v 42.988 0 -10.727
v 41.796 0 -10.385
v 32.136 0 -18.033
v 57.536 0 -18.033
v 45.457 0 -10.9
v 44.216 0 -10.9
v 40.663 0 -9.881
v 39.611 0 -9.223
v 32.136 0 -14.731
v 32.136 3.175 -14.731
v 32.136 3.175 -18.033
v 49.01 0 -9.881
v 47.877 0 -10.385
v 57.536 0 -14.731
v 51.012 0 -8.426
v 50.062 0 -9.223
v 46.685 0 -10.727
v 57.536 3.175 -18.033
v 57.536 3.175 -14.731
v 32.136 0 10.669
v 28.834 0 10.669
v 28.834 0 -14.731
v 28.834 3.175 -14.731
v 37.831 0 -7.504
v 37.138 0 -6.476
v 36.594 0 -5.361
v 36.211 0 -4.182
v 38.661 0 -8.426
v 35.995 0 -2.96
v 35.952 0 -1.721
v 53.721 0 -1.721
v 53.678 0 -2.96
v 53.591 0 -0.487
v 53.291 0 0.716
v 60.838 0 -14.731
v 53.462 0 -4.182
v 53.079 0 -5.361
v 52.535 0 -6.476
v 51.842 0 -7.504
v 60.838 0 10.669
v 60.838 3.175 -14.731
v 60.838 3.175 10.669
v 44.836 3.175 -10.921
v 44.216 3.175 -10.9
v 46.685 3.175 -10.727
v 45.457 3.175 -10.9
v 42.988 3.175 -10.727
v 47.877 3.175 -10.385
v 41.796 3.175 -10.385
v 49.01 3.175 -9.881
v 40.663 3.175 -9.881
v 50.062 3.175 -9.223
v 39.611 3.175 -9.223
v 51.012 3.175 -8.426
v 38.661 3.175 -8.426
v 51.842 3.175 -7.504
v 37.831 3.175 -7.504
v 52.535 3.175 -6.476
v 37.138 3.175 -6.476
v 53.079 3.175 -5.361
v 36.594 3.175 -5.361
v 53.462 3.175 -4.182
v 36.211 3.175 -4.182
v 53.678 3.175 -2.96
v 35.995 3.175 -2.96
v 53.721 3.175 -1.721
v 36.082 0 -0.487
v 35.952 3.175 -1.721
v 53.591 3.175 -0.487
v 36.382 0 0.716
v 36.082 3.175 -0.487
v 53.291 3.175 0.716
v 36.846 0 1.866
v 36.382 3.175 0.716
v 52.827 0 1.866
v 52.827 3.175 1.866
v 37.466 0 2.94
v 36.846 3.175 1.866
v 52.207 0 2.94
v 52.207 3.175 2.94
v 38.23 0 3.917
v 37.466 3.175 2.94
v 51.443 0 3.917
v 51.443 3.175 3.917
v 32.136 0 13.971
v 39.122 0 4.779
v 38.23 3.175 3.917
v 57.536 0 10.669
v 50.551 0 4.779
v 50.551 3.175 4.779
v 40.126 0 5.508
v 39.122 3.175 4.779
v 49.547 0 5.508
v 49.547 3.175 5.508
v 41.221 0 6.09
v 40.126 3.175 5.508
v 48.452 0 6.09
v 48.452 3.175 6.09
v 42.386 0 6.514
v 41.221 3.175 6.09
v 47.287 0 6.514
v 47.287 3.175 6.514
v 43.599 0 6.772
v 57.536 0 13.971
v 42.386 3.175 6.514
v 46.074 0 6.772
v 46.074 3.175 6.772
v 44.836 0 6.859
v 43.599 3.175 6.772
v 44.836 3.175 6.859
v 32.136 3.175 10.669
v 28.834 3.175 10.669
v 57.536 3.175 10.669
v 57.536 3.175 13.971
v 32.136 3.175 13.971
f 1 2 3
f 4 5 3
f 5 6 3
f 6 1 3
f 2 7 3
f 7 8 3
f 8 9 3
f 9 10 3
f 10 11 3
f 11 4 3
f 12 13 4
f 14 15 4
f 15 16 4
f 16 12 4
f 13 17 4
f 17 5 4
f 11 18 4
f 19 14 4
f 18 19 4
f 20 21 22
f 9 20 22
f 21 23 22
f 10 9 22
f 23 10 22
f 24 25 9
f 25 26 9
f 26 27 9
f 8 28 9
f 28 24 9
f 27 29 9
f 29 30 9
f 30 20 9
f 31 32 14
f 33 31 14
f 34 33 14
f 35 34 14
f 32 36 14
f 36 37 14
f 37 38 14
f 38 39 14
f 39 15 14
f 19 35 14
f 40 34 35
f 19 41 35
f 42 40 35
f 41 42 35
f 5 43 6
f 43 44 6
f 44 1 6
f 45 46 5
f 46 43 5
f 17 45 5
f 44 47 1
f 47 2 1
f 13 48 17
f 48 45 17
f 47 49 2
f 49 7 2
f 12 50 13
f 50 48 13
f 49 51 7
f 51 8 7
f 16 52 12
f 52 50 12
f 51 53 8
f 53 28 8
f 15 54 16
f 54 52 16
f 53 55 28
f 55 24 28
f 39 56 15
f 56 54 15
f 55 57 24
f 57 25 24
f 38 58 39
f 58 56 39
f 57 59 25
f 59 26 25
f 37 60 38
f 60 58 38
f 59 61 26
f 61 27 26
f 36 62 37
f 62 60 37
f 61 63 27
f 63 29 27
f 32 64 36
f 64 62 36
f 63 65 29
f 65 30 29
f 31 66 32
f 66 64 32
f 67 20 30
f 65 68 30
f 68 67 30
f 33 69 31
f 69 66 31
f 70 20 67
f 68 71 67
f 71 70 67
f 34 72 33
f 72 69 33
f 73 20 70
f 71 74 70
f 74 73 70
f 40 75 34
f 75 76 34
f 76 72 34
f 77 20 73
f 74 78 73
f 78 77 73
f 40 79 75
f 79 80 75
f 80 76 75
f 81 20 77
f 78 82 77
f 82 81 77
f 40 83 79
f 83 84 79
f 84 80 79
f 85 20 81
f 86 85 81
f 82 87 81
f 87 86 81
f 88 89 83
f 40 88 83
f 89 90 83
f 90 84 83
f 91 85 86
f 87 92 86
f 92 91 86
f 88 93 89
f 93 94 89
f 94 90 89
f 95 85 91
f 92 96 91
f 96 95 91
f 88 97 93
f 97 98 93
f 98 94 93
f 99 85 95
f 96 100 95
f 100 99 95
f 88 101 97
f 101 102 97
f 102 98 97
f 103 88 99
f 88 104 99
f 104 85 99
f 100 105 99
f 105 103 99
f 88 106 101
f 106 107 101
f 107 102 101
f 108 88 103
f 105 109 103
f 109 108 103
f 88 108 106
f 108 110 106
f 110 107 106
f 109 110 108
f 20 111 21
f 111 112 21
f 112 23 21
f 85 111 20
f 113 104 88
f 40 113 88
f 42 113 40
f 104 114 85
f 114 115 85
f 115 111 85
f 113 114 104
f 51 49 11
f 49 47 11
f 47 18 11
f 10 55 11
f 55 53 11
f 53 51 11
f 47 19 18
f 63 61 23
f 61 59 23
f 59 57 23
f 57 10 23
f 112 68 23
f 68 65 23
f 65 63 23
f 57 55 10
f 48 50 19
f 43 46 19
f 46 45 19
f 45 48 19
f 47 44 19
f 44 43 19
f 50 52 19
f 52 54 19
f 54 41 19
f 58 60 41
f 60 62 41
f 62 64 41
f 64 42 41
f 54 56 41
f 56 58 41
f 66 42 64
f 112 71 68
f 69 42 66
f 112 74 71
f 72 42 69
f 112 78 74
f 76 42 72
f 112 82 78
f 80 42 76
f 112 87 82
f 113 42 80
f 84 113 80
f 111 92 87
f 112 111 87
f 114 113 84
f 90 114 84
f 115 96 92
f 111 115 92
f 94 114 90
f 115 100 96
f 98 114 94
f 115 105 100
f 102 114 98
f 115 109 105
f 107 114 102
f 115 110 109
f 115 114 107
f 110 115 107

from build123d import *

# Parameters (mm, degrees)
SKETCH2_W                    = 304.8
SKETCH2_H                    = 304.8
BOSS_EXTRUDE1_DEPTH          = 3.175
CUT_EXTRUDE1_DEPTH           = 348.408852067
CUT_EXTRUDE1_DEPTH_BACK      = 348.408852067
SKETCH3_W                    = 304.8
SKETCH3_H                    = 304.8
SKETCH3_R                    = 12.7
SKETCH3_R_2                  = 8.89
BODY_DELETE_KEEP_1_OUTLINE_R = 12.7
BODY_DELETE_KEEP_1_DEPTH     = 3.175


# Read off the part's stored shape, not the designer's step: Body-Delete/Keep 1
with BuildPart() as part:
    # Sketch2 → Boss-Extrude1 (new body)
    with BuildSketch(Plane(origin=(0, 0, 0), x_dir=(1, 0, 0), z_dir=(0, 1, 0))):
        with Locations((-56.763509666, -124.968808797)):
            Rectangle(SKETCH2_W, SKETCH2_H)
    extrude(amount=BOSS_EXTRUDE1_DEPTH)

    # Sketch3 → Cut-Extrude1 (cut, two sides: drawn at the far end of the back side and taken through both)
    # profile 1 of 3: a face of its own
    with BuildSketch(Plane(origin=(0, 3.175, 0), x_dir=(1, 0, 0), z_dir=(0, 1, 0)).offset(-CUT_EXTRUDE1_DEPTH_BACK)):
        with Locations((-56.763509666, -124.968808797)):
            Rectangle(SKETCH3_W, SKETCH3_H)
        Polygon((-188.253637726, -268.695366412), (-192.063637726, -268.695366412), (-192.063637726, -265.393366412), (-198.413637726, -265.393366412), (-188.253637726, -205.195366412), align=None, mode=Mode.SUBTRACT)
        Polygon((-185.713637726, -265.393366412), (-175.553637726, -205.195366412), (-175.553637726, -268.695366412), (-179.363637726, -268.695366412), (-179.363637726, -265.393366412), align=None, mode=Mode.SUBTRACT)
        Polygon((-162.853637726, -268.695366412), (-166.663637726, -268.695366412), (-166.663637726, -265.393366412), (-173.013637726, -265.393366412), (-162.853637726, -205.195366412), align=None, mode=Mode.SUBTRACT)
        Polygon((-150.153637726, -268.695366412), (-153.963637726, -268.695366412), (-153.963637726, -265.393366412), (-160.313637726, -265.393366412), (-150.153637726, -205.195366412), align=None, mode=Mode.SUBTRACT)
        Polygon((-147.613637726, -265.393366412), (-137.453637726, -205.195366412), (-137.453637726, -268.695366412), (-141.263637726, -268.695366412), (-141.263637726, -265.393366412), align=None, mode=Mode.SUBTRACT)
        Polygon((-128.563637726, -265.393366412), (-134.913637726, -265.393366412), (-124.753637726, -205.195366412), (-124.753637726, -268.695366412), (-128.563637726, -268.695366412), align=None, mode=Mode.SUBTRACT)
        Polygon((-122.213637726, -265.393366412), (-112.053637726, -205.195366412), (-112.053637726, -268.695366412), (-115.863637726, -268.695366412), (-115.863637726, -265.393366412), align=None, mode=Mode.SUBTRACT)
        Polygon((-99.353637726, -268.695366412), (-103.163637726, -268.695366412), (-103.163637726, -265.393366412), (-109.513637726, -265.393366412), (-99.353637726, -205.195366412), align=None, mode=Mode.SUBTRACT)
        Polygon((-90.463637726, -268.695366412), (-90.463637726, -265.393366412), (-96.813637726, -265.393366412), (-86.653637726, -205.195366412), (-86.653637726, -268.695366412), align=None, mode=Mode.SUBTRACT)
        Polygon((-84.113637726, -265.393366412), (-73.953637726, -205.195366412), (-73.953637726, -268.695366412), (-77.763637726, -268.695366412), (-77.763637726, -265.393366412), align=None, mode=Mode.SUBTRACT)
        Polygon((-71.413637726, -265.393366412), (-61.253637726, -205.195366412), (-61.253637726, -268.695366412), (-65.063637726, -268.695366412), (-65.063637726, -265.393366412), align=None, mode=Mode.SUBTRACT)
        with BuildLine():
            ThreePointArc((-132.963509666, -135.600090559), (-133.446874634, -138.030130355), (-134.823381605, -140.09021862))
            Line((-134.823381605, -140.09021862), (-188.253637726, -193.520474741))
            ThreePointArc((-188.253637726, -193.520474741), (-190.313725991, -194.896981712), (-192.743765787, -195.38034668))
            Line((-192.743765787, -195.38034668), (-196.463509666, -195.38034668))
            Line((-196.463509666, -195.38034668), (-196.463509666, -131.88034668))
            Line((-196.463509666, -131.88034668), (-132.963509666, -131.88034668))
            Line((-132.963509666, -131.88034668), (-132.963509666, -135.600090559))
        make_face(mode=Mode.SUBTRACT)
        with BuildLine():
            Line((-126.613509666, -195.38034668), (-126.613509666, -131.88034668))
            Line((-126.613509666, -131.88034668), (-63.113509666, -131.88034668))
            Line((-63.113509666, -131.88034668), (-63.113509666, -135.600090559))
            ThreePointArc((-63.113509666, -135.600090559), (-63.596874634, -138.030130355), (-64.973381605, -140.09021862))
            Line((-64.973381605, -140.09021862), (-118.403637726, -193.520474741))
            ThreePointArc((-118.403637726, -193.520474741), (-120.463725991, -194.896981712), (-122.893765787, -195.38034668))
            Line((-122.893765787, -195.38034668), (-126.613509666, -195.38034668))
        make_face(mode=Mode.SUBTRACT)
        Polygon((-52.363637726, -268.695366412), (-52.363637726, -265.393366412), (-58.713637726, -265.393366412), (-48.553637726, -205.195366412), (-48.553637726, -268.695366412), align=None, mode=Mode.SUBTRACT)
        Polygon((-35.853637726, -205.195366412), (-35.853637726, -268.695366412), (-39.663637726, -268.695366412), (-39.663637726, -265.393366412), (-46.013637726, -265.393366412), align=None, mode=Mode.SUBTRACT)
        Polygon((-23.153637726, -205.195366412), (-23.153637726, -268.695366412), (-26.963637726, -268.695366412), (-26.963637726, -265.393366412), (-33.313637726, -265.393366412), align=None, mode=Mode.SUBTRACT)
        Polygon((-20.613637726, -265.393366412), (-10.453637726, -205.195366412), (-10.453637726, -268.695366412), (-14.263637726, -268.695366412), (-14.263637726, -265.393366412), align=None, mode=Mode.SUBTRACT)
        Polygon((-1.563637726, -268.695366412), (-1.563637726, -265.393366412), (-7.913637726, -265.393366412), (2.246362274, -205.195366412), (2.246362274, -268.695366412), align=None, mode=Mode.SUBTRACT)
        with BuildLine():
            Line((-53.043765787, -195.38034668), (-56.763509666, -195.38034668))
            Line((-56.763509666, -195.38034668), (-56.763509666, -131.88034668))
            Line((-56.763509666, -131.88034668), (6.736490334, -131.88034668))
            Line((6.736490334, -131.88034668), (6.736490334, -135.600090559))
            ThreePointArc((6.736490334, -135.600090559), (6.253125366, -138.030130355), (4.876618395, -140.09021862))
            Line((4.876618395, -140.09021862), (-48.553637726, -193.520474741))
            ThreePointArc((-48.553637726, -193.520474741), (-50.613725991, -194.896981712), (-53.043765787, -195.38034668))
        make_face(mode=Mode.SUBTRACT)
        with BuildLine():
            Line((13.086490334, -131.88034668), (76.586490334, -131.88034668))
            Line((76.586490334, -131.88034668), (76.586490334, -135.600090559))
            ThreePointArc((76.586490334, -135.600090559), (76.103125366, -138.030130355), (74.726618395, -140.09021862))
            Line((74.726618395, -140.09021862), (21.296362274, -193.520474741))
            ThreePointArc((21.296362274, -193.520474741), (19.236274009, -194.896981712), (16.806234213, -195.38034668))
            Line((16.806234213, -195.38034668), (13.086490334, -195.38034668))
            Line((13.086490334, -195.38034668), (13.086490334, -131.88034668))
        make_face(mode=Mode.SUBTRACT)
        with BuildLine():
            Line((-196.463509666, -125.53034668), (-196.463509666, -62.03034668))
            Line((-196.463509666, -62.03034668), (-132.963509666, -62.03034668))
            Line((-132.963509666, -62.03034668), (-132.963509666, -65.750090559))
            ThreePointArc((-132.963509666, -65.750090559), (-133.10773728, -67.095783354), (-133.533868437, -68.38034668))
            ThreePointArc((-133.533868437, -68.38034668), (-134.095097913, -69.368194866), (-134.823381605, -70.24021862))
            Line((-134.823381605, -70.24021862), (-188.253637726, -123.670474741))
            ThreePointArc((-188.253637726, -123.670474741), (-189.12566148, -124.398758433), (-190.113509666, -124.959987909))
            ThreePointArc((-190.113509666, -124.959987909), (-191.398072992, -125.386119066), (-192.743765787, -125.53034668))
            Line((-192.743765787, -125.53034668), (-196.463509666, -125.53034668))
        make_face(mode=Mode.SUBTRACT)
        with BuildLine():
            Line((-122.893765787, -125.53034668), (-126.613509666, -125.53034668))
            Line((-126.613509666, -125.53034668), (-126.613509666, -62.03034668))
            Line((-126.613509666, -62.03034668), (-63.113509666, -62.03034668))
            Line((-63.113509666, -62.03034668), (-63.113509666, -65.750090559))
            ThreePointArc((-63.113509666, -65.750090559), (-63.596874634, -68.180130355), (-64.973381605, -70.24021862))
            Line((-64.973381605, -70.24021862), (-118.403637726, -123.670474741))
            ThreePointArc((-118.403637726, -123.670474741), (-120.463725991, -125.046981712), (-122.893765787, -125.53034668))
        make_face(mode=Mode.SUBTRACT)
        Polygon((-196.463509666, -48.768808797), (-196.463509666, 14.731191203), (-192.653509666, 14.731191203), (-192.653509666, 11.429191203), (-186.303509666, 11.429191203), align=None, mode=Mode.SUBTRACT)
        Polygon((-183.763509666, 14.731191203), (-179.953509666, 14.731191203), (-179.953509666, 11.429191203), (-173.603509666, 11.429191203), (-183.763509666, -48.768808797), align=None, mode=Mode.SUBTRACT)
        Polygon((-171.063509666, 14.731191203), (-167.253509666, 14.731191203), (-167.253509666, 11.429191203), (-160.903509666, 11.429191203), (-171.063509666, -48.768808797), align=None, mode=Mode.SUBTRACT)
        Polygon((-158.363509666, 14.731191203), (-154.553509666, 14.731191203), (-154.553509666, 11.429191203), (-148.203509666, 11.429191203), (-158.363509666, -48.768808797), align=None, mode=Mode.SUBTRACT)
        Polygon((-145.663509666, 14.731191203), (-141.853509666, 14.731191203), (-141.853509666, 11.429191203), (-135.503509666, 11.429191203), (-145.663509666, -48.768808797), align=None, mode=Mode.SUBTRACT)
        Polygon((-132.963509666, 14.731191203), (-129.153509666, 14.731191203), (-129.153509666, 11.429191203), (-122.803509666, 11.429191203), (-132.963509666, -48.768808797), align=None, mode=Mode.SUBTRACT)
        Polygon((-120.263509666, 14.731191203), (-116.453509666, 14.731191203), (-116.453509666, 11.429191203), (-110.103509666, 11.429191203), (-120.263509666, -48.768808797), align=None, mode=Mode.SUBTRACT)
        Polygon((-107.563509666, 14.731191203), (-103.753509666, 14.731191203), (-103.753509666, 11.429191203), (-97.403509666, 11.429191203), (-107.563509666, -48.768808797), align=None, mode=Mode.SUBTRACT)
        Polygon((-94.863509666, 14.731191203), (-91.053509666, 14.731191203), (-91.053509666, 11.429191203), (-84.703509666, 11.429191203), (-94.863509666, -48.768808797), align=None, mode=Mode.SUBTRACT)
        Polygon((-82.163509666, 14.731191203), (-78.353509666, 14.731191203), (-78.353509666, 11.429191203), (-72.003509666, 11.429191203), (-82.163509666, -48.768808797), align=None, mode=Mode.SUBTRACT)
        Polygon((-69.463509666, 14.731191203), (-65.653509666, 14.731191203), (-65.653509666, 11.429191203), (-59.303509666, 11.429191203), (-69.463509666, -48.768808797), align=None, mode=Mode.SUBTRACT)
        with BuildLine():
            Line((-53.043765787, -125.53034668), (-56.763509666, -125.53034668))
            Line((-56.763509666, -125.53034668), (-56.763509666, -62.03034668))
            Line((-56.763509666, -62.03034668), (6.736490334, -62.03034668))
            Line((6.736490334, -62.03034668), (6.736490334, -65.750090559))
            ThreePointArc((6.736490334, -65.750090559), (6.253125366, -68.180130355), (4.876618395, -70.24021862))
            Line((4.876618395, -70.24021862), (-48.553637726, -123.670474741))
            ThreePointArc((-48.553637726, -123.670474741), (-50.613725991, -125.046981712), (-53.043765787, -125.53034668))
        make_face(mode=Mode.SUBTRACT)
        with BuildLine():
            Line((16.806234213, -125.53034668), (13.086490334, -125.53034668))
            Line((13.086490334, -125.53034668), (13.086490334, -62.03034668))
            Line((13.086490334, -62.03034668), (76.586490334, -62.03034668))
            Line((76.586490334, -62.03034668), (76.586490334, -65.750090559))
            ThreePointArc((76.586490334, -65.750090559), (76.103125366, -68.180130355), (74.726618395, -70.24021862))
            Line((74.726618395, -70.24021862), (21.296362274, -123.670474741))
            ThreePointArc((21.296362274, -123.670474741), (19.236274009, -125.046981712), (16.806234213, -125.53034668))
        make_face(mode=Mode.SUBTRACT)
        Polygon((-56.763509666, 14.731191203), (-52.953509666, 14.731191203), (-52.953509666, 11.429191203), (-46.603509666, 11.429191203), (-56.763509666, -48.768808797), align=None, mode=Mode.SUBTRACT)
        Polygon((-44.063509666, 14.731191203), (-40.253509666, 14.731191203), (-40.253509666, 11.429191203), (-33.903509666, 11.429191203), (-44.063509666, -48.768808797), align=None, mode=Mode.SUBTRACT)
        Polygon((-31.363509666, 14.731191203), (-27.553509666, 14.731191203), (-27.553509666, 11.429191203), (-21.203509666, 11.429191203), (-31.363509666, -48.768808797), align=None, mode=Mode.SUBTRACT)
        Polygon((-18.663509666, 14.731191203), (-14.853509666, 14.731191203), (-14.853509666, 11.429191203), (-8.503509666, 11.429191203), (-18.663509666, -48.768808797), align=None, mode=Mode.SUBTRACT)
        Polygon((-5.963509666, 14.731191203), (-2.153509666, 14.731191203), (-2.153509666, 11.429191203), (4.196490334, 11.429191203), (-5.963509666, -48.768808797), align=None, mode=Mode.SUBTRACT)
        Polygon((57.536490334, -48.768808797), (57.536490334, -52.070808797), (32.136490334, -52.070808797), (32.136490334, -48.768808797), (28.834490334, -48.768808797), (28.834490334, -23.368808797), (32.136490334, -23.368808797), (32.136490334, -20.066808797), (57.536490334, -20.066808797), (57.536490334, -23.368808797), (60.838490334, -23.368808797), (60.838490334, -48.768808797), align=None, mode=Mode.SUBTRACT)
        Polygon((28.834490334, 14.731191203), (32.136490334, 14.731191203), (32.136490334, 18.033191203), (57.536490334, 18.033191203), (57.536490334, 14.731191203), (60.838490334, 14.731191203), (60.838490334, -10.668808797), (57.536490334, -10.668808797), (57.536490334, -13.970808797), (32.136490334, -13.970808797), (32.136490334, -10.668808797), (28.834490334, -10.668808797), align=None, mode=Mode.SUBTRACT)
    # profile 2 of 3: a face of its own
    with BuildSketch(Plane(origin=(0, 3.175, 0), x_dir=(1, 0, 0), z_dir=(0, 1, 0)).offset(-CUT_EXTRUDE1_DEPTH_BACK)):
        with Locations(Location((44.836490334, -36.068808797, 0), (0, 0, 270))):
            Circle(SKETCH3_R)
    # profile 3 of 3: a face of its own
    with BuildSketch(Plane(origin=(0, 3.175, 0), x_dir=(1, 0, 0), z_dir=(0, 1, 0)).offset(-CUT_EXTRUDE1_DEPTH_BACK)):
        with Locations(Location((44.836490334, 2.031191203, 0), (0, 0, 270))):
            Circle(SKETCH3_R_2)
    extrude(amount=CUT_EXTRUDE1_DEPTH + CUT_EXTRUDE1_DEPTH_BACK, mode=Mode.SUBTRACT)

    # Body-Delete/Keep 1 outline → Body-Delete/Keep 1 (cut)
    # profile 1 of 41: a face of its own
    with BuildSketch(Plane(origin=(0, 0, 0), x_dir=(1, 0, 0), z_dir=(0, 1, 0))):
        Polygon((60.838490334, -23.368808797), (57.536490334, -23.368808797), (57.536490334, -20.066808797), (32.136490334, -20.066808797), (32.136490334, -23.368808797), (28.834490334, -23.368808797), (28.834490334, -48.768808797), (32.136490334, -48.768808797), (32.136490334, -52.070808797), (57.536490334, -52.070808797), (57.536490334, -48.768808797), (60.838490334, -48.768808797), align=None)
        with Locations((44.836490334, -36.068808797)):
            Circle(BODY_DELETE_KEEP_1_OUTLINE_R, mode=Mode.SUBTRACT)
    # profile 2 of 41: a face of its own
    with BuildSketch(Plane(origin=(0, 0, 0), x_dir=(1, 0, 0), z_dir=(0, 1, 0))):
        Polygon((-192.653509666, 11.429191203), (-192.653509666, 14.731191203), (-196.463509666, 14.731191203), (-196.463509666, -48.768808797), (-186.303509666, 11.429191203), align=None)
    # profile 3 of 41: a face of its own
    with BuildSketch(Plane(origin=(0, 0, 0), x_dir=(1, 0, 0), z_dir=(0, 1, 0))):
        Polygon((-2.153509666, 11.429191203), (-2.153509666, 14.731191203), (-5.963509666, 14.731191203), (-5.963509666, -48.768808797), (4.196490334, 11.429191203), align=None)
    # profile 4 of 41: a face of its own
    with BuildSketch(Plane(origin=(0, 0, 0), x_dir=(1, 0, 0), z_dir=(0, 1, 0))):
        Polygon((-27.553509666, 11.429191203), (-27.553509666, 14.731191203), (-31.363509666, 14.731191203), (-31.363509666, -48.768808797), (-21.203509666, 11.429191203), align=None)
    # profile 5 of 41: a face of its own
    with BuildSketch(Plane(origin=(0, 0, 0), x_dir=(1, 0, 0), z_dir=(0, 1, 0))):
        Polygon((-14.853509666, 11.429191203), (-14.853509666, 14.731191203), (-18.663509666, 14.731191203), (-18.663509666, -48.768808797), (-8.503509666, 11.429191203), align=None)
    # profile 6 of 41: a face of its own
    with BuildSketch(Plane(origin=(0, 0, 0), x_dir=(1, 0, 0), z_dir=(0, 1, 0))):
        Polygon((-65.653509666, 11.429191203), (-65.653509666, 14.731191203), (-69.463509666, 14.731191203), (-69.463509666, -48.768808797), (-59.303509666, 11.429191203), align=None)
    # profile 7 of 41: a face of its own
    with BuildSketch(Plane(origin=(0, 0, 0), x_dir=(1, 0, 0), z_dir=(0, 1, 0))):
        Polygon((-91.053509666, 11.429191203), (-91.053509666, 14.731191203), (-94.863509666, 14.731191203), (-94.863509666, -48.768808797), (-84.703509666, 11.429191203), align=None)
    # profile 8 of 41: a face of its own
    with BuildSketch(Plane(origin=(0, 0, 0), x_dir=(1, 0, 0), z_dir=(0, 1, 0))):
        Polygon((-40.253509666, 11.429191203), (-40.253509666, 14.731191203), (-44.063509666, 14.731191203), (-44.063509666, -48.768808797), (-33.903509666, 11.429191203), align=None)
    # profile 9 of 41: a face of its own
    with BuildSketch(Plane(origin=(0, 0, 0), x_dir=(1, 0, 0), z_dir=(0, 1, 0))):
        Polygon((-52.953509666, 11.429191203), (-52.953509666, 14.731191203), (-56.763509666, 14.731191203), (-56.763509666, -48.768808797), (-46.603509666, 11.429191203), align=None)
    # profile 10 of 41: a face of its own
    with BuildSketch(Plane(origin=(0, 0, 0), x_dir=(1, 0, 0), z_dir=(0, 1, 0))):
        Polygon((-141.853509666, 11.429191203), (-141.853509666, 14.731191203), (-145.663509666, 14.731191203), (-145.663509666, -48.768808797), (-135.503509666, 11.429191203), align=None)
    # profile 11 of 41: a face of its own
    with BuildSketch(Plane(origin=(0, 0, 0), x_dir=(1, 0, 0), z_dir=(0, 1, 0))):
        Polygon((-154.553509666, 11.429191203), (-154.553509666, 14.731191203), (-158.363509666, 14.731191203), (-158.363509666, -48.768808797), (-148.203509666, 11.429191203), align=None)
    # profile 12 of 41: a face of its own
    with BuildSketch(Plane(origin=(0, 0, 0), x_dir=(1, 0, 0), z_dir=(0, 1, 0))):
        Polygon((-167.253509666, 11.429191203), (-167.253509666, 14.731191203), (-171.063509666, 14.731191203), (-171.063509666, -48.768808797), (-160.903509666, 11.429191203), align=None)
    # profile 13 of 41: a face of its own
    with BuildSketch(Plane(origin=(0, 0, 0), x_dir=(1, 0, 0), z_dir=(0, 1, 0))):
        Polygon((-78.353509666, 11.429191203), (-78.353509666, 14.731191203), (-82.163509666, 14.731191203), (-82.163509666, -48.768808797), (-72.003509666, 11.429191203), align=None)
    # profile 14 of 41: a face of its own
    with BuildSketch(Plane(origin=(0, 0, 0), x_dir=(1, 0, 0), z_dir=(0, 1, 0))):
        Polygon((-179.953509666, 11.429191203), (-179.953509666, 14.731191203), (-183.763509666, 14.731191203), (-183.763509666, -48.768808797), (-173.603509666, 11.429191203), align=None)
    # profile 15 of 41: a face of its own
    with BuildSketch(Plane(origin=(0, 0, 0), x_dir=(1, 0, 0), z_dir=(0, 1, 0))):
        Polygon((-103.753509666, 11.429191203), (-103.753509666, 14.731191203), (-107.563509666, 14.731191203), (-107.563509666, -48.768808797), (-97.403509666, 11.429191203), align=None)
    # profile 16 of 41: a face of its own
    with BuildSketch(Plane(origin=(0, 0, 0), x_dir=(1, 0, 0), z_dir=(0, 1, 0))):
        Polygon((-116.453509666, 11.429191203), (-116.453509666, 14.731191203), (-120.263509666, 14.731191203), (-120.263509666, -48.768808797), (-110.103509666, 11.429191203), align=None)
    # profile 17 of 41: a face of its own
    with BuildSketch(Plane(origin=(0, 0, 0), x_dir=(1, 0, 0), z_dir=(0, 1, 0))):
        Polygon((-129.153509666, 11.429191203), (-129.153509666, 14.731191203), (-132.963509666, 14.731191203), (-132.963509666, -48.768808797), (-122.803509666, 11.429191203), align=None)
    # profile 18 of 41: a face of its own
    with BuildSketch(Plane(origin=(0, 0, 0), x_dir=(1, 0, 0), z_dir=(0, 1, 0))):
        Polygon((-71.413637726, -265.393366412), (-65.063637726, -265.393366412), (-65.063637726, -268.695366412), (-61.253637726, -268.695366412), (-61.253637726, -205.195366412), align=None)
    # profile 19 of 41: a face of its own
    with BuildSketch(Plane(origin=(0, 0, 0), x_dir=(1, 0, 0), z_dir=(0, 1, 0))):
        Polygon((-124.753637726, -205.195366412), (-134.913637726, -265.393366412), (-128.563637726, -265.393366412), (-128.563637726, -268.695366412), (-124.753637726, -268.695366412), align=None)
    # profile 20 of 41: a face of its own
    with BuildSketch(Plane(origin=(0, 0, 0), x_dir=(1, 0, 0), z_dir=(0, 1, 0))):
        Polygon((-23.153637726, -205.195366412), (-33.313637726, -265.393366412), (-26.963637726, -265.393366412), (-26.963637726, -268.695366412), (-23.153637726, -268.695366412), align=None)
    # profile 21 of 41: a face of its own
    with BuildSketch(Plane(origin=(0, 0, 0), x_dir=(1, 0, 0), z_dir=(0, 1, 0))):
        Polygon((-35.853637726, -205.195366412), (-46.013637726, -265.393366412), (-39.663637726, -265.393366412), (-39.663637726, -268.695366412), (-35.853637726, -268.695366412), align=None)
    # profile 22 of 41: a face of its own
    with BuildSketch(Plane(origin=(0, 0, 0), x_dir=(1, 0, 0), z_dir=(0, 1, 0))):
        Polygon((-73.953637726, -205.195366412), (-84.113637726, -265.393366412), (-77.763637726, -265.393366412), (-77.763637726, -268.695366412), (-73.953637726, -268.695366412), align=None)
    # profile 23 of 41: a face of its own
    with BuildSketch(Plane(origin=(0, 0, 0), x_dir=(1, 0, 0), z_dir=(0, 1, 0))):
        Polygon((-162.853637726, -205.195366412), (-173.013637726, -265.393366412), (-166.663637726, -265.393366412), (-166.663637726, -268.695366412), (-162.853637726, -268.695366412), align=None)
    # profile 24 of 41: a face of its own
    with BuildSketch(Plane(origin=(0, 0, 0), x_dir=(1, 0, 0), z_dir=(0, 1, 0))):
        Polygon((-188.253637726, -205.195366412), (-198.413637726, -265.393366412), (-192.063637726, -265.393366412), (-192.063637726, -268.695366412), (-188.253637726, -268.695366412), align=None)
    # profile 25 of 41: a face of its own
    with BuildSketch(Plane(origin=(0, 0, 0), x_dir=(1, 0, 0), z_dir=(0, 1, 0))):
        Polygon((-175.553637726, -205.195366412), (-185.713637726, -265.393366412), (-179.363637726, -265.393366412), (-179.363637726, -268.695366412), (-175.553637726, -268.695366412), align=None)
    # profile 26 of 41: a face of its own
    with BuildSketch(Plane(origin=(0, 0, 0), x_dir=(1, 0, 0), z_dir=(0, 1, 0))):
        Polygon((-150.153637726, -205.195366412), (-160.313637726, -265.393366412), (-153.963637726, -265.393366412), (-153.963637726, -268.695366412), (-150.153637726, -268.695366412), align=None)
    # profile 27 of 41: a face of its own
    with BuildSketch(Plane(origin=(0, 0, 0), x_dir=(1, 0, 0), z_dir=(0, 1, 0))):
        Polygon((-86.653637726, -205.195366412), (-96.813637726, -265.393366412), (-90.463637726, -265.393366412), (-90.463637726, -268.695366412), (-86.653637726, -268.695366412), align=None)
    # profile 28 of 41: a face of its own
    with BuildSketch(Plane(origin=(0, 0, 0), x_dir=(1, 0, 0), z_dir=(0, 1, 0))):
        Polygon((2.246362274, -205.195366412), (-7.913637726, -265.393366412), (-1.563637726, -265.393366412), (-1.563637726, -268.695366412), (2.246362274, -268.695366412), align=None)
    # profile 29 of 41: a face of its own
    with BuildSketch(Plane(origin=(0, 0, 0), x_dir=(1, 0, 0), z_dir=(0, 1, 0))):
        Polygon((-137.453637726, -205.195366412), (-147.613637726, -265.393366412), (-141.263637726, -265.393366412), (-141.263637726, -268.695366412), (-137.453637726, -268.695366412), align=None)
    # profile 30 of 41: a face of its own
    with BuildSketch(Plane(origin=(0, 0, 0), x_dir=(1, 0, 0), z_dir=(0, 1, 0))):
        Polygon((-48.553637726, -205.195366412), (-58.713637726, -265.393366412), (-52.363637726, -265.393366412), (-52.363637726, -268.695366412), (-48.553637726, -268.695366412), align=None)
    # profile 31 of 41: a face of its own
    with BuildSketch(Plane(origin=(0, 0, 0), x_dir=(1, 0, 0), z_dir=(0, 1, 0))):
        Polygon((-10.453637726, -205.195366412), (-20.613637726, -265.393366412), (-14.263637726, -265.393366412), (-14.263637726, -268.695366412), (-10.453637726, -268.695366412), align=None)
    # profile 32 of 41: a face of its own
    with BuildSketch(Plane(origin=(0, 0, 0), x_dir=(1, 0, 0), z_dir=(0, 1, 0))):
        Polygon((-99.353637726, -205.195366412), (-109.513637726, -265.393366412), (-103.163637726, -265.393366412), (-103.163637726, -268.695366412), (-99.353637726, -268.695366412), align=None)
    # profile 33 of 41: a face of its own
    with BuildSketch(Plane(origin=(0, 0, 0), x_dir=(1, 0, 0), z_dir=(0, 1, 0))):
        Polygon((-112.053637726, -205.195366412), (-122.213637726, -265.393366412), (-115.863637726, -265.393366412), (-115.863637726, -268.695366412), (-112.053637726, -268.695366412), align=None)
    # profile 34 of 41: a face of its own
    with BuildSketch(Plane(origin=(0, 0, 0), x_dir=(1, 0, 0), z_dir=(0, 1, 0))):
        with BuildLine():
            Line((-132.963509666, -62.03034668), (-196.463509666, -62.03034668))
            Line((-196.463509666, -62.03034668), (-196.463509666, -125.53034668))
            Line((-196.463509666, -125.53034668), (-192.743765787, -125.53034668))
            ThreePointArc((-192.743765787, -125.53034668), (-190.313725991, -125.046981712), (-188.253637726, -123.670474741))
            Line((-188.253637726, -123.670474741), (-134.823381605, -70.24021862))
            ThreePointArc((-134.823381605, -70.24021862), (-133.446874634, -68.180130355), (-132.963509666, -65.750090559))
            Line((-132.963509666, -65.750090559), (-132.963509666, -62.03034668))
        make_face()
    # profile 35 of 41: a face of its own
    with BuildSketch(Plane(origin=(0, 0, 0), x_dir=(1, 0, 0), z_dir=(0, 1, 0))):
        with BuildLine():
            Line((-132.963509666, -131.88034668), (-196.463509666, -131.88034668))
            Line((-196.463509666, -131.88034668), (-196.463509666, -195.38034668))
            Line((-196.463509666, -195.38034668), (-192.743765787, -195.38034668))
            ThreePointArc((-192.743765787, -195.38034668), (-190.313725991, -194.896981712), (-188.253637726, -193.520474741))
            Line((-188.253637726, -193.520474741), (-134.823381605, -140.09021862))
            ThreePointArc((-134.823381605, -140.09021862), (-133.446874634, -138.030130355), (-132.963509666, -135.600090559))
            Line((-132.963509666, -135.600090559), (-132.963509666, -131.88034668))
        make_face()
    # profile 36 of 41: a face of its own
    with BuildSketch(Plane(origin=(0, 0, 0), x_dir=(1, 0, 0), z_dir=(0, 1, 0))):
        with BuildLine():
            Line((6.736490334, -131.88034668), (-56.763509666, -131.88034668))
            Line((-56.763509666, -131.88034668), (-56.763509666, -195.38034668))
            Line((-56.763509666, -195.38034668), (-53.043765787, -195.38034668))
            ThreePointArc((-53.043765787, -195.38034668), (-50.613725991, -194.896981712), (-48.553637726, -193.520474741))
            Line((-48.553637726, -193.520474741), (4.876618395, -140.09021862))
            ThreePointArc((4.876618395, -140.09021862), (6.253125366, -138.030130355), (6.736490334, -135.600090559))
            Line((6.736490334, -135.600090559), (6.736490334, -131.88034668))
        make_face()
    # profile 37 of 41: a face of its own
    with BuildSketch(Plane(origin=(0, 0, 0), x_dir=(1, 0, 0), z_dir=(0, 1, 0))):
        with BuildLine():
            Line((6.736490334, -62.03034668), (-56.763509666, -62.03034668))
            Line((-56.763509666, -62.03034668), (-56.763509666, -125.53034668))
            Line((-56.763509666, -125.53034668), (-53.043765787, -125.53034668))
            ThreePointArc((-53.043765787, -125.53034668), (-50.613725991, -125.046981712), (-48.553637726, -123.670474741))
            Line((-48.553637726, -123.670474741), (4.876618395, -70.24021862))
            ThreePointArc((4.876618395, -70.24021862), (6.253125366, -68.180130355), (6.736490334, -65.750090559))
            Line((6.736490334, -65.750090559), (6.736490334, -62.03034668))
        make_face()
    # profile 38 of 41: a face of its own
    with BuildSketch(Plane(origin=(0, 0, 0), x_dir=(1, 0, 0), z_dir=(0, 1, 0))):
        with BuildLine():
            Line((21.296362274, -193.520474741), (74.726618395, -140.09021862))
            ThreePointArc((74.726618395, -140.09021862), (76.103125366, -138.030130355), (76.586490334, -135.600090559))
            Line((76.586490334, -135.600090559), (76.586490334, -131.88034668))
            Line((76.586490334, -131.88034668), (13.086490334, -131.88034668))
            Line((13.086490334, -131.88034668), (13.086490334, -195.38034668))
            Line((13.086490334, -195.38034668), (16.806234213, -195.38034668))
            ThreePointArc((16.806234213, -195.38034668), (19.236274009, -194.896981712), (21.296362274, -193.520474741))
        make_face()
    # profile 39 of 41: a face of its own
    with BuildSketch(Plane(origin=(0, 0, 0), x_dir=(1, 0, 0), z_dir=(0, 1, 0))):
        with BuildLine():
            Line((-126.613509666, -131.88034668), (-126.613509666, -195.38034668))
            Line((-126.613509666, -195.38034668), (-122.893765787, -195.38034668))
            ThreePointArc((-122.893765787, -195.38034668), (-120.463725991, -194.896981712), (-118.403637726, -193.520474741))
            Line((-118.403637726, -193.520474741), (-64.973381605, -140.09021862))
            ThreePointArc((-64.973381605, -140.09021862), (-63.596874634, -138.030130355), (-63.113509666, -135.600090559))
            Line((-63.113509666, -135.600090559), (-63.113509666, -131.88034668))
            Line((-63.113509666, -131.88034668), (-126.613509666, -131.88034668))
        make_face()
    # profile 40 of 41: a face of its own
    with BuildSketch(Plane(origin=(0, 0, 0), x_dir=(1, 0, 0), z_dir=(0, 1, 0))):
        with BuildLine():
            Line((76.586490334, -62.03034668), (13.086490334, -62.03034668))
            Line((13.086490334, -62.03034668), (13.086490334, -125.53034668))
            Line((13.086490334, -125.53034668), (16.806234213, -125.53034668))
            ThreePointArc((16.806234213, -125.53034668), (19.236274009, -125.046981712), (21.296362274, -123.670474741))
            Line((21.296362274, -123.670474741), (74.726618395, -70.24021862))
            ThreePointArc((74.726618395, -70.24021862), (76.103125366, -68.180130355), (76.586490334, -65.750090559))
            Line((76.586490334, -65.750090559), (76.586490334, -62.03034668))
        make_face()
    # profile 41 of 41: a face of its own
    with BuildSketch(Plane(origin=(0, 0, 0), x_dir=(1, 0, 0), z_dir=(0, 1, 0))):
        with BuildLine():
            Line((-126.613509666, -62.03034668), (-126.613509666, -125.53034668))
            Line((-126.613509666, -125.53034668), (-122.893765787, -125.53034668))
            ThreePointArc((-122.893765787, -125.53034668), (-120.463725991, -125.046981712), (-118.403637726, -123.670474741))
            Line((-118.403637726, -123.670474741), (-64.973381605, -70.24021862))
            ThreePointArc((-64.973381605, -70.24021862), (-63.596874634, -68.180130355), (-63.113509666, -65.750090559))
            Line((-63.113509666, -65.750090559), (-63.113509666, -62.03034668))
            Line((-63.113509666, -62.03034668), (-126.613509666, -62.03034668))
        make_face()
    extrude(amount=BODY_DELETE_KEEP_1_DEPTH, mode=Mode.SUBTRACT)


solid = part.part
